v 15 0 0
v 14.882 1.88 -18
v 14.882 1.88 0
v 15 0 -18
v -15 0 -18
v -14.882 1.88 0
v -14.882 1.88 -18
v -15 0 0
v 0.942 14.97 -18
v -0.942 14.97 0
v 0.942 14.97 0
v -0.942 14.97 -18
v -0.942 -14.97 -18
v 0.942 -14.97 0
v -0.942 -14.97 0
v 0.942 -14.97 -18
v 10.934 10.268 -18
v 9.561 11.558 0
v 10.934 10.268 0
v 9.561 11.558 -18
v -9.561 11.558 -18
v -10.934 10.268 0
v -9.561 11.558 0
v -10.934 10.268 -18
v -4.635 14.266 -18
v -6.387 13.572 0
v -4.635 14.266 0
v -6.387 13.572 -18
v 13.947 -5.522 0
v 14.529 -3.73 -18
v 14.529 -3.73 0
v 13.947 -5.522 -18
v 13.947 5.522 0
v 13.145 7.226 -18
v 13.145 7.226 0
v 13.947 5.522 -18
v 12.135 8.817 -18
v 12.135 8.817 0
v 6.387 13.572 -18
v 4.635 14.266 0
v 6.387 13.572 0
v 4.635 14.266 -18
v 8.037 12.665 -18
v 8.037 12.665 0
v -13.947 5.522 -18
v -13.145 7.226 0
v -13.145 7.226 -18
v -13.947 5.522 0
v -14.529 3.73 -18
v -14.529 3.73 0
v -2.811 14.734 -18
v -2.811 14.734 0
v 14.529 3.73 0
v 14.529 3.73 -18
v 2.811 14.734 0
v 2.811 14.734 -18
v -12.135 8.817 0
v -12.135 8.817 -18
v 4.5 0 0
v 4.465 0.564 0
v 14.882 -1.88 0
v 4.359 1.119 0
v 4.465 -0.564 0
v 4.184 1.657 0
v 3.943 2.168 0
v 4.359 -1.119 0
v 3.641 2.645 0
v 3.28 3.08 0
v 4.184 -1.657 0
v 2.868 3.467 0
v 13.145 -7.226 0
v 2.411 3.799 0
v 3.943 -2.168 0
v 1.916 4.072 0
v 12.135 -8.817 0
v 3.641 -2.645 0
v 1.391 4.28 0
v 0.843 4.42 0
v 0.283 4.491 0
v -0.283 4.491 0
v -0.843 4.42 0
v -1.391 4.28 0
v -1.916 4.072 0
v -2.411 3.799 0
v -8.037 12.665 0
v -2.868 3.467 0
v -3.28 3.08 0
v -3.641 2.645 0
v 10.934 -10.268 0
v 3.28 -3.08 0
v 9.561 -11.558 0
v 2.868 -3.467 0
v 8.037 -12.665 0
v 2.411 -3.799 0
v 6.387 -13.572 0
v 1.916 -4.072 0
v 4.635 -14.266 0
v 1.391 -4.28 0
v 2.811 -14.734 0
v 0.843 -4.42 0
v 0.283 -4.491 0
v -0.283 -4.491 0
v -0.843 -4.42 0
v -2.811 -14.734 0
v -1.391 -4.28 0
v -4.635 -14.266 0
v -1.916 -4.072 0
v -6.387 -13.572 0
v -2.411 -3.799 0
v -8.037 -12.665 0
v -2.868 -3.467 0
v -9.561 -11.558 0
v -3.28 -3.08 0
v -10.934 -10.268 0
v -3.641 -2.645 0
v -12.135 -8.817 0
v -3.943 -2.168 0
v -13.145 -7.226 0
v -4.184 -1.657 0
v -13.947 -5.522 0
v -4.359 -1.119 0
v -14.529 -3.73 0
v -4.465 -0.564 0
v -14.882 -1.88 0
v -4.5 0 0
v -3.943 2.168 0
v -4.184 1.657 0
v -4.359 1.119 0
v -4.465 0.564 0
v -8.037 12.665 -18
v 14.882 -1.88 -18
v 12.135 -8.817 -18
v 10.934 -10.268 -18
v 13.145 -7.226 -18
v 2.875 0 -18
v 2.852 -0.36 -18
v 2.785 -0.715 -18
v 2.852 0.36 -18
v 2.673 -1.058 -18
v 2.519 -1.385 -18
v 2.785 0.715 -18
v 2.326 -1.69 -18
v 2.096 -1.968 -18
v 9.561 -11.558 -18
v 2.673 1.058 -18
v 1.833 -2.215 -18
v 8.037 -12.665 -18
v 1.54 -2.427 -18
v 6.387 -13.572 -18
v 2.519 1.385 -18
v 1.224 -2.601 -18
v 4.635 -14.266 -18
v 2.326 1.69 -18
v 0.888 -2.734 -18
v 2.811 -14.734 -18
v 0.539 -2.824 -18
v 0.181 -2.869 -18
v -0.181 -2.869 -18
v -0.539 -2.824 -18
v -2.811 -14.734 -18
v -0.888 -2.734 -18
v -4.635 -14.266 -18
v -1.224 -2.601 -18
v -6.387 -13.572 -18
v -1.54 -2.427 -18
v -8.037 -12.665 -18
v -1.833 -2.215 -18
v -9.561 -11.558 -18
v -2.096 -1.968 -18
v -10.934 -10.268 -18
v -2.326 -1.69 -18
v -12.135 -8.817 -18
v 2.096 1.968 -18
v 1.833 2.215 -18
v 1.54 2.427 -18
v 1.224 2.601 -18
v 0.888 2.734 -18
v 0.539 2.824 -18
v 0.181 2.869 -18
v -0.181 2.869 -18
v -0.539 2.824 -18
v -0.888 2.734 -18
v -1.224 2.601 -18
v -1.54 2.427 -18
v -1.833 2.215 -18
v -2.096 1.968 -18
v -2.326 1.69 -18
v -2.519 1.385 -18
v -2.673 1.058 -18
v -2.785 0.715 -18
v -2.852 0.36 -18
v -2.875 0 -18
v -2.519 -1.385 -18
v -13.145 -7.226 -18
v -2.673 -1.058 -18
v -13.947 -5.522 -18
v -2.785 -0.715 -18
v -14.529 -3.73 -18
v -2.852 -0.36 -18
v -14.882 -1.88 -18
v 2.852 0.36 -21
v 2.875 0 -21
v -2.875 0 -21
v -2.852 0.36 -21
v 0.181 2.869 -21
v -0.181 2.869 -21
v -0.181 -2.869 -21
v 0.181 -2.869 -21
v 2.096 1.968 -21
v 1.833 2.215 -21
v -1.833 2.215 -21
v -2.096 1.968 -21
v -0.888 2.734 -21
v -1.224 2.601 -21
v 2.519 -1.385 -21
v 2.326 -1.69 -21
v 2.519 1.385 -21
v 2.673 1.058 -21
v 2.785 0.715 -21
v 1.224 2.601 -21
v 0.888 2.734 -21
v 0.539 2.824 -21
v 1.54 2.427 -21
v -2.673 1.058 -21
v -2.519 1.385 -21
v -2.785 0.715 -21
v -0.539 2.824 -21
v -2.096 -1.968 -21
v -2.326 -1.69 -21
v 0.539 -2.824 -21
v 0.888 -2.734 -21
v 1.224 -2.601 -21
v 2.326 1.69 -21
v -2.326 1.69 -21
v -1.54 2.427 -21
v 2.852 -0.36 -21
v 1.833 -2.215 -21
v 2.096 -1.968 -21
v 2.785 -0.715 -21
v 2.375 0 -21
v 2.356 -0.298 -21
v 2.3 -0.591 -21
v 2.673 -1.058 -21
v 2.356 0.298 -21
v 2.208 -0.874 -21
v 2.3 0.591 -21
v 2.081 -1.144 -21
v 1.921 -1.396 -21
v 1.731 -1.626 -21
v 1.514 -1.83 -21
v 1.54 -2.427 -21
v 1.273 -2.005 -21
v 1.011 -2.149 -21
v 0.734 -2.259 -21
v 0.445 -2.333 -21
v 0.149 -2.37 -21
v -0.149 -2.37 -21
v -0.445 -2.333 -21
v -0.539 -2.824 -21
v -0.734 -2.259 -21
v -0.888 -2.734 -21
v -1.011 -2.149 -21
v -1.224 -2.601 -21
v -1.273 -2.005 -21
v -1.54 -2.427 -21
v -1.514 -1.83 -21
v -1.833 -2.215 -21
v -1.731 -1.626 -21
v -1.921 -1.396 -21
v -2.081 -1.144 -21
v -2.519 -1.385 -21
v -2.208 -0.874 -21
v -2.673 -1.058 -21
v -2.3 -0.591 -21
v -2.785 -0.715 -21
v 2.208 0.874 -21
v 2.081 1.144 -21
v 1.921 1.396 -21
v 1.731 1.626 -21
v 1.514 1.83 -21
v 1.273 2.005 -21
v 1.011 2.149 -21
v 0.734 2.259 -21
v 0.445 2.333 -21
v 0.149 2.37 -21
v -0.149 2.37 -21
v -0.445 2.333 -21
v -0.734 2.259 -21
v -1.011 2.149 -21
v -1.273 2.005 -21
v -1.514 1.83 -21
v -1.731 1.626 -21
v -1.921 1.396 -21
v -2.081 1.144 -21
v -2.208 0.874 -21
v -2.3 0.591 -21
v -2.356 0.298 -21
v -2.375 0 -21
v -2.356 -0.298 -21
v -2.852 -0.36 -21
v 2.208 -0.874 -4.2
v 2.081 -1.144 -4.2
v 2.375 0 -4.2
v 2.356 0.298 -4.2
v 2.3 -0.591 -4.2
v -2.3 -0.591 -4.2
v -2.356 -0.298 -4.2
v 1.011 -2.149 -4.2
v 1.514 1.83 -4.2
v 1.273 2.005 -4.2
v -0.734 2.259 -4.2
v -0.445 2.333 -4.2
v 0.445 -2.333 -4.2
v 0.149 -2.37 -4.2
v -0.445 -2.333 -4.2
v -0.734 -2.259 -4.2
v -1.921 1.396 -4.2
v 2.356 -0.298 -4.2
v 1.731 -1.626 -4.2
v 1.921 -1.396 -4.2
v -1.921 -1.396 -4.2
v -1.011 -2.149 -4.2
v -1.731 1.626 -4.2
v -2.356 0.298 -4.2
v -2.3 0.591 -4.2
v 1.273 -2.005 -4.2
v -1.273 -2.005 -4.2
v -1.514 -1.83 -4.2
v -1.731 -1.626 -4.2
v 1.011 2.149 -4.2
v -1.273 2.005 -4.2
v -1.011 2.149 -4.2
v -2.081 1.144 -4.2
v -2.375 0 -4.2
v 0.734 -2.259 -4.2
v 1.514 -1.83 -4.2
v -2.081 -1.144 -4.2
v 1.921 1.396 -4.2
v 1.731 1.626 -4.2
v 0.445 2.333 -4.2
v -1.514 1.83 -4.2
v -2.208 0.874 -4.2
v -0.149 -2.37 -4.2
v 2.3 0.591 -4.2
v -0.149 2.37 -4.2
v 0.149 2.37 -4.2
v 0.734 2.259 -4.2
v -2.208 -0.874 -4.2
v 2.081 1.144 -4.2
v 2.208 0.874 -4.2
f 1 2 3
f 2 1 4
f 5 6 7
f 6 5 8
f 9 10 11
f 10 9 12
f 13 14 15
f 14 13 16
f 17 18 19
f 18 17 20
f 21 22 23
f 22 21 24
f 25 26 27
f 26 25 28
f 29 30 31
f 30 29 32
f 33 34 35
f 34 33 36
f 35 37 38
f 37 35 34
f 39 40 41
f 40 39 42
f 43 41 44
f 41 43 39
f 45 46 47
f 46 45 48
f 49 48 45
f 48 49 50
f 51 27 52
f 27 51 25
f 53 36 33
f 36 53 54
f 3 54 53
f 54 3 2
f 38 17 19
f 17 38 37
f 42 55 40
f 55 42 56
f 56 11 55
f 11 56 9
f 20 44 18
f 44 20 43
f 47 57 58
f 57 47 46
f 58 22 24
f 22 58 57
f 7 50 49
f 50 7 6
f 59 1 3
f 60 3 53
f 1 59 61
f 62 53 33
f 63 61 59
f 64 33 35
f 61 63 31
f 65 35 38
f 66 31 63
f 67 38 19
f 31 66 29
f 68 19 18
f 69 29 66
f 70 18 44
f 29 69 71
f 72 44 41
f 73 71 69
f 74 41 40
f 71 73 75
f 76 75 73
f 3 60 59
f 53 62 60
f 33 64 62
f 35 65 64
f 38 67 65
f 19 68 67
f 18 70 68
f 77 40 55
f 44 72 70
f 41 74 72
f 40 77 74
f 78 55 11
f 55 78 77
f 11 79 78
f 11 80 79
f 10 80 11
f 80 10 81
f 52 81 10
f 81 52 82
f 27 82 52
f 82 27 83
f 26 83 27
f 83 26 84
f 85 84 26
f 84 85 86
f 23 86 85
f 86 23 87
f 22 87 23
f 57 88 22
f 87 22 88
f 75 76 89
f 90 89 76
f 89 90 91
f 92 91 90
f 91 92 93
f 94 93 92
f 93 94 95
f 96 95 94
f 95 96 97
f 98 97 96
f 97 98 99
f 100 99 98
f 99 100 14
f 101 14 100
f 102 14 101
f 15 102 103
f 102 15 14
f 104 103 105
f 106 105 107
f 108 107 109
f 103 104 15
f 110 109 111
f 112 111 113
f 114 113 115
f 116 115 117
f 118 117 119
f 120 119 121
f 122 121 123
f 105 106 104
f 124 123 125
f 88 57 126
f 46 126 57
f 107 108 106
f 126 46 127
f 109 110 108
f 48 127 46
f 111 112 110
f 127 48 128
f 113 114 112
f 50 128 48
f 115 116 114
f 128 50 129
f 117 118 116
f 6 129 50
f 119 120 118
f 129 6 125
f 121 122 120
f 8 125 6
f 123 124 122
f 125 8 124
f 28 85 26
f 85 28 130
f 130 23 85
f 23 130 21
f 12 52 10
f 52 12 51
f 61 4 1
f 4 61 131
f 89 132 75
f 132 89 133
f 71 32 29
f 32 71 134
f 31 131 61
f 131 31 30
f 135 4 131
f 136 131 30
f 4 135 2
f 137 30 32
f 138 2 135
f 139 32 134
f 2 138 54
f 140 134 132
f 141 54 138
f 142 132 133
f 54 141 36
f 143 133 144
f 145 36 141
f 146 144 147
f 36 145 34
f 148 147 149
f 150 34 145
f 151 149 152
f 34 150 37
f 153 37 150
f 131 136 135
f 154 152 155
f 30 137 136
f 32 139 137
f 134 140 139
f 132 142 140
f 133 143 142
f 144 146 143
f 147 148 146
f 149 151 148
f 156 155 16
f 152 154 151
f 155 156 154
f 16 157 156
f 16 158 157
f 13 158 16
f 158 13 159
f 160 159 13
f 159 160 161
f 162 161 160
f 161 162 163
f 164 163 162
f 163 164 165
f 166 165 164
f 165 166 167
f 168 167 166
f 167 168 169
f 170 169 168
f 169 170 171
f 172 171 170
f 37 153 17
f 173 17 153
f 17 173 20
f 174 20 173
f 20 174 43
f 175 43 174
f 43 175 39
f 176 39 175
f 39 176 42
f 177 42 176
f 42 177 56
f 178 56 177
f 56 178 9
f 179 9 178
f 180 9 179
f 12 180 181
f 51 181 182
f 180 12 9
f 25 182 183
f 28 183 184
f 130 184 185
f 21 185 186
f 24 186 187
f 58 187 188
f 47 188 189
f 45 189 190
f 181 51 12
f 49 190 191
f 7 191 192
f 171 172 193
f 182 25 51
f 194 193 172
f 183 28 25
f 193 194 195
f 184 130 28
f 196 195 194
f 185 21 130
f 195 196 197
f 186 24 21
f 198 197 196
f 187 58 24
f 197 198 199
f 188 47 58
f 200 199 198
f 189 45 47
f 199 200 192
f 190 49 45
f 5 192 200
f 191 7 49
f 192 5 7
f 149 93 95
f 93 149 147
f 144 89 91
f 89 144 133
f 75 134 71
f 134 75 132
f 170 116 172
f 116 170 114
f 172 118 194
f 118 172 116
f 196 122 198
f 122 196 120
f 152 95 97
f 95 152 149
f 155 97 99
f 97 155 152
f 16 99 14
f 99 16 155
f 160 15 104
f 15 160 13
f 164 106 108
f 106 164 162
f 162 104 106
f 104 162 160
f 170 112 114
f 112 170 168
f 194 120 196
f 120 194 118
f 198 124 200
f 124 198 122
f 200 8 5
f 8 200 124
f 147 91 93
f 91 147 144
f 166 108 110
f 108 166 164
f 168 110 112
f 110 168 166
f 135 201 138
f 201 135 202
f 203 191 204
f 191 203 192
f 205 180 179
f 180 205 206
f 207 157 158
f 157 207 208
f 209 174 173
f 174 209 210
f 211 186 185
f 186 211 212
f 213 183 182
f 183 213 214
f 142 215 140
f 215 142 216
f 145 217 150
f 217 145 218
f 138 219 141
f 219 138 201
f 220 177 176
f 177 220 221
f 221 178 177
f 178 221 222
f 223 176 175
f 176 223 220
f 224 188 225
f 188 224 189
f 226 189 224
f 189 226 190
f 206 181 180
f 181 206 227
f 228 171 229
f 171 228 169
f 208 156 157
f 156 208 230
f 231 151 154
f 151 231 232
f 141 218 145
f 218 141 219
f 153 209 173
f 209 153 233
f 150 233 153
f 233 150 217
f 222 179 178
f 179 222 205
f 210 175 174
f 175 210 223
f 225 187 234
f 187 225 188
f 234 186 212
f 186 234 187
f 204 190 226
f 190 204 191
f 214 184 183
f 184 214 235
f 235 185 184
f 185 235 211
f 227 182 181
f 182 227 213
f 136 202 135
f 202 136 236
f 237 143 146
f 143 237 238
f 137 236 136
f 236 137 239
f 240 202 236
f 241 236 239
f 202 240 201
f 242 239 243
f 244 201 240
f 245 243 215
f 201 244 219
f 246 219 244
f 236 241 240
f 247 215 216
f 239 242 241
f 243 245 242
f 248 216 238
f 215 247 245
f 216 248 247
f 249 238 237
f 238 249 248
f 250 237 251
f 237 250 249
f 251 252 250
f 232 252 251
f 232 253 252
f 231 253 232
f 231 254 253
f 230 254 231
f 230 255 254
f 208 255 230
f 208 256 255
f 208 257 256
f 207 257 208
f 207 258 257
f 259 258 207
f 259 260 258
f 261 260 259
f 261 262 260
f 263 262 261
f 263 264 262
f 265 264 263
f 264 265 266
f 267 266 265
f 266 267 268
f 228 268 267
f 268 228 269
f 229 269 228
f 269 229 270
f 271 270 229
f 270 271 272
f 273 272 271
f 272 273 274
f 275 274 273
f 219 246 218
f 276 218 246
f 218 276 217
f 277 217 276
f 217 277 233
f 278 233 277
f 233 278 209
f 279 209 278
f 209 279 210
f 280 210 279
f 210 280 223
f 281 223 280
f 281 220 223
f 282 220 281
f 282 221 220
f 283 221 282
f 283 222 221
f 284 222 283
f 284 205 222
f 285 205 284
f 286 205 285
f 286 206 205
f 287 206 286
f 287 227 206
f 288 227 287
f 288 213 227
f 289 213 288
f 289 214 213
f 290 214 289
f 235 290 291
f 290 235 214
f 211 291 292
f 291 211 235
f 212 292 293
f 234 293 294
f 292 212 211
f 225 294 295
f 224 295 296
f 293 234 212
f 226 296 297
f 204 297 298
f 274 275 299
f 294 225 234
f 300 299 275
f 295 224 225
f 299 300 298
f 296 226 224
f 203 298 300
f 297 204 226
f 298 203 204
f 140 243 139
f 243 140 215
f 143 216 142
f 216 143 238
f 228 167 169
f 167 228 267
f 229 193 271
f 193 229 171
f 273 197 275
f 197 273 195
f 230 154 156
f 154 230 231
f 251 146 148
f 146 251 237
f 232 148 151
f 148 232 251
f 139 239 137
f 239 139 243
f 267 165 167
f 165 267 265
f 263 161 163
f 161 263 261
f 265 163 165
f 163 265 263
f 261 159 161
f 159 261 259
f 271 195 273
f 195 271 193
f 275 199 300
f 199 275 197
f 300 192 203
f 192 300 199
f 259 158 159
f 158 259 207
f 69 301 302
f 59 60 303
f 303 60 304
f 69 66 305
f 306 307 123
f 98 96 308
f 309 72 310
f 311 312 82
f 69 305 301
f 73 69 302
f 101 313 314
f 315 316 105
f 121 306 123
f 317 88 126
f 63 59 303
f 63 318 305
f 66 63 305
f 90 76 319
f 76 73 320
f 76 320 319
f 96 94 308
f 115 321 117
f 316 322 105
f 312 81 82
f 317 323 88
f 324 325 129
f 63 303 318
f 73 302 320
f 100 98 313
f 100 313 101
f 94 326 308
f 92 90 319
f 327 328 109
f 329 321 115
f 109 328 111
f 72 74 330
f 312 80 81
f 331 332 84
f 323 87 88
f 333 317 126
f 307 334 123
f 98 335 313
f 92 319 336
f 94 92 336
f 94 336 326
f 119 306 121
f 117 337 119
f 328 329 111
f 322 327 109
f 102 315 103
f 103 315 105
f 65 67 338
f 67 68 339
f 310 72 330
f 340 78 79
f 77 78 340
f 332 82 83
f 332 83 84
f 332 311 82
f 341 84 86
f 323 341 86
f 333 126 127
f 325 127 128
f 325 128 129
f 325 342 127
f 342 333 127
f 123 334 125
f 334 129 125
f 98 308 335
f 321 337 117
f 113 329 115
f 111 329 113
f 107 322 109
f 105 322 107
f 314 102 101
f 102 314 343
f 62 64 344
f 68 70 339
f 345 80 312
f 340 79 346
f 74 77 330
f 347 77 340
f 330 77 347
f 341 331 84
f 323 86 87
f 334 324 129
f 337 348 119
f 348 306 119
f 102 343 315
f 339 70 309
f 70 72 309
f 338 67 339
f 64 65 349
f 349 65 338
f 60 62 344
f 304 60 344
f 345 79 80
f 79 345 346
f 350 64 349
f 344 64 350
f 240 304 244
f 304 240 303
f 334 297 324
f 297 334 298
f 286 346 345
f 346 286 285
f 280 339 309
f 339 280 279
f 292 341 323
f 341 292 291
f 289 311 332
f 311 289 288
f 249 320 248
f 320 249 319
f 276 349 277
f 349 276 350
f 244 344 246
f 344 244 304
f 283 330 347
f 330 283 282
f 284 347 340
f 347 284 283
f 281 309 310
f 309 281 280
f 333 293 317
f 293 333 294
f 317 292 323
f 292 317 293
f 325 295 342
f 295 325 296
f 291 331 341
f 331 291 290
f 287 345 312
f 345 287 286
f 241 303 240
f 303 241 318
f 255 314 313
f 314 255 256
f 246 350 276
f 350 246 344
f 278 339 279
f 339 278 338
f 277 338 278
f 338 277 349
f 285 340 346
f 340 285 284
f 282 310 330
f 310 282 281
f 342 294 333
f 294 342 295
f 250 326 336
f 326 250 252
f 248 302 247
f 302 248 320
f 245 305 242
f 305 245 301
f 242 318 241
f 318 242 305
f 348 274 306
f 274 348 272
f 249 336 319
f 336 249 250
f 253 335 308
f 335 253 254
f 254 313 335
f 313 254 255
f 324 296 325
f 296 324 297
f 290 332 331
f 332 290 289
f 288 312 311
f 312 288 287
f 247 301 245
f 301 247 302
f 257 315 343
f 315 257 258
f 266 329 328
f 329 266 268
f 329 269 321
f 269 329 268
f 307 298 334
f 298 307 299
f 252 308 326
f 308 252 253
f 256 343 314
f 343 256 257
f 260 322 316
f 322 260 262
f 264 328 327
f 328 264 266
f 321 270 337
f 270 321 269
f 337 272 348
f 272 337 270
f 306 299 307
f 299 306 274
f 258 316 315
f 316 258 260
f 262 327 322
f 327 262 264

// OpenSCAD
$fn = 50;


difference() {
	union() {
		translate(v = [0, 0, -18.0000000000]) {
			cylinder(h = 18, r = 15.0000000000);
		}
		#translate(v = [0, 0, -21.0000000000]) {
			cylinder(h = 21, r = 2.8750000000);
		}
	}
	union() {
		translate(v = [0, 0, 0]) {
			rotate(a = [0, 0, 0]) {
				difference() {
					union() {
						translate(v = [0, 0, -21.0000000000]) {
							cylinder(h = 21, r = 2.2500000000);
						}
						translate(v = [0, 0, -4.2000000000]) {
							cylinder(h = 4.2000000000, r1 = 2.3750000000, r2 = 4.5000000000);
						}
						translate(v = [0, 0, -21.0000000000]) {
							cylinder(h = 21, r = 2.3750000000);
						}
						translate(v = [0, 0, -21.0000000000]) {
							cylinder(h = 21, r = 2.2500000000);
						}
					}
					union();
				}
			}
		}
	}
}
